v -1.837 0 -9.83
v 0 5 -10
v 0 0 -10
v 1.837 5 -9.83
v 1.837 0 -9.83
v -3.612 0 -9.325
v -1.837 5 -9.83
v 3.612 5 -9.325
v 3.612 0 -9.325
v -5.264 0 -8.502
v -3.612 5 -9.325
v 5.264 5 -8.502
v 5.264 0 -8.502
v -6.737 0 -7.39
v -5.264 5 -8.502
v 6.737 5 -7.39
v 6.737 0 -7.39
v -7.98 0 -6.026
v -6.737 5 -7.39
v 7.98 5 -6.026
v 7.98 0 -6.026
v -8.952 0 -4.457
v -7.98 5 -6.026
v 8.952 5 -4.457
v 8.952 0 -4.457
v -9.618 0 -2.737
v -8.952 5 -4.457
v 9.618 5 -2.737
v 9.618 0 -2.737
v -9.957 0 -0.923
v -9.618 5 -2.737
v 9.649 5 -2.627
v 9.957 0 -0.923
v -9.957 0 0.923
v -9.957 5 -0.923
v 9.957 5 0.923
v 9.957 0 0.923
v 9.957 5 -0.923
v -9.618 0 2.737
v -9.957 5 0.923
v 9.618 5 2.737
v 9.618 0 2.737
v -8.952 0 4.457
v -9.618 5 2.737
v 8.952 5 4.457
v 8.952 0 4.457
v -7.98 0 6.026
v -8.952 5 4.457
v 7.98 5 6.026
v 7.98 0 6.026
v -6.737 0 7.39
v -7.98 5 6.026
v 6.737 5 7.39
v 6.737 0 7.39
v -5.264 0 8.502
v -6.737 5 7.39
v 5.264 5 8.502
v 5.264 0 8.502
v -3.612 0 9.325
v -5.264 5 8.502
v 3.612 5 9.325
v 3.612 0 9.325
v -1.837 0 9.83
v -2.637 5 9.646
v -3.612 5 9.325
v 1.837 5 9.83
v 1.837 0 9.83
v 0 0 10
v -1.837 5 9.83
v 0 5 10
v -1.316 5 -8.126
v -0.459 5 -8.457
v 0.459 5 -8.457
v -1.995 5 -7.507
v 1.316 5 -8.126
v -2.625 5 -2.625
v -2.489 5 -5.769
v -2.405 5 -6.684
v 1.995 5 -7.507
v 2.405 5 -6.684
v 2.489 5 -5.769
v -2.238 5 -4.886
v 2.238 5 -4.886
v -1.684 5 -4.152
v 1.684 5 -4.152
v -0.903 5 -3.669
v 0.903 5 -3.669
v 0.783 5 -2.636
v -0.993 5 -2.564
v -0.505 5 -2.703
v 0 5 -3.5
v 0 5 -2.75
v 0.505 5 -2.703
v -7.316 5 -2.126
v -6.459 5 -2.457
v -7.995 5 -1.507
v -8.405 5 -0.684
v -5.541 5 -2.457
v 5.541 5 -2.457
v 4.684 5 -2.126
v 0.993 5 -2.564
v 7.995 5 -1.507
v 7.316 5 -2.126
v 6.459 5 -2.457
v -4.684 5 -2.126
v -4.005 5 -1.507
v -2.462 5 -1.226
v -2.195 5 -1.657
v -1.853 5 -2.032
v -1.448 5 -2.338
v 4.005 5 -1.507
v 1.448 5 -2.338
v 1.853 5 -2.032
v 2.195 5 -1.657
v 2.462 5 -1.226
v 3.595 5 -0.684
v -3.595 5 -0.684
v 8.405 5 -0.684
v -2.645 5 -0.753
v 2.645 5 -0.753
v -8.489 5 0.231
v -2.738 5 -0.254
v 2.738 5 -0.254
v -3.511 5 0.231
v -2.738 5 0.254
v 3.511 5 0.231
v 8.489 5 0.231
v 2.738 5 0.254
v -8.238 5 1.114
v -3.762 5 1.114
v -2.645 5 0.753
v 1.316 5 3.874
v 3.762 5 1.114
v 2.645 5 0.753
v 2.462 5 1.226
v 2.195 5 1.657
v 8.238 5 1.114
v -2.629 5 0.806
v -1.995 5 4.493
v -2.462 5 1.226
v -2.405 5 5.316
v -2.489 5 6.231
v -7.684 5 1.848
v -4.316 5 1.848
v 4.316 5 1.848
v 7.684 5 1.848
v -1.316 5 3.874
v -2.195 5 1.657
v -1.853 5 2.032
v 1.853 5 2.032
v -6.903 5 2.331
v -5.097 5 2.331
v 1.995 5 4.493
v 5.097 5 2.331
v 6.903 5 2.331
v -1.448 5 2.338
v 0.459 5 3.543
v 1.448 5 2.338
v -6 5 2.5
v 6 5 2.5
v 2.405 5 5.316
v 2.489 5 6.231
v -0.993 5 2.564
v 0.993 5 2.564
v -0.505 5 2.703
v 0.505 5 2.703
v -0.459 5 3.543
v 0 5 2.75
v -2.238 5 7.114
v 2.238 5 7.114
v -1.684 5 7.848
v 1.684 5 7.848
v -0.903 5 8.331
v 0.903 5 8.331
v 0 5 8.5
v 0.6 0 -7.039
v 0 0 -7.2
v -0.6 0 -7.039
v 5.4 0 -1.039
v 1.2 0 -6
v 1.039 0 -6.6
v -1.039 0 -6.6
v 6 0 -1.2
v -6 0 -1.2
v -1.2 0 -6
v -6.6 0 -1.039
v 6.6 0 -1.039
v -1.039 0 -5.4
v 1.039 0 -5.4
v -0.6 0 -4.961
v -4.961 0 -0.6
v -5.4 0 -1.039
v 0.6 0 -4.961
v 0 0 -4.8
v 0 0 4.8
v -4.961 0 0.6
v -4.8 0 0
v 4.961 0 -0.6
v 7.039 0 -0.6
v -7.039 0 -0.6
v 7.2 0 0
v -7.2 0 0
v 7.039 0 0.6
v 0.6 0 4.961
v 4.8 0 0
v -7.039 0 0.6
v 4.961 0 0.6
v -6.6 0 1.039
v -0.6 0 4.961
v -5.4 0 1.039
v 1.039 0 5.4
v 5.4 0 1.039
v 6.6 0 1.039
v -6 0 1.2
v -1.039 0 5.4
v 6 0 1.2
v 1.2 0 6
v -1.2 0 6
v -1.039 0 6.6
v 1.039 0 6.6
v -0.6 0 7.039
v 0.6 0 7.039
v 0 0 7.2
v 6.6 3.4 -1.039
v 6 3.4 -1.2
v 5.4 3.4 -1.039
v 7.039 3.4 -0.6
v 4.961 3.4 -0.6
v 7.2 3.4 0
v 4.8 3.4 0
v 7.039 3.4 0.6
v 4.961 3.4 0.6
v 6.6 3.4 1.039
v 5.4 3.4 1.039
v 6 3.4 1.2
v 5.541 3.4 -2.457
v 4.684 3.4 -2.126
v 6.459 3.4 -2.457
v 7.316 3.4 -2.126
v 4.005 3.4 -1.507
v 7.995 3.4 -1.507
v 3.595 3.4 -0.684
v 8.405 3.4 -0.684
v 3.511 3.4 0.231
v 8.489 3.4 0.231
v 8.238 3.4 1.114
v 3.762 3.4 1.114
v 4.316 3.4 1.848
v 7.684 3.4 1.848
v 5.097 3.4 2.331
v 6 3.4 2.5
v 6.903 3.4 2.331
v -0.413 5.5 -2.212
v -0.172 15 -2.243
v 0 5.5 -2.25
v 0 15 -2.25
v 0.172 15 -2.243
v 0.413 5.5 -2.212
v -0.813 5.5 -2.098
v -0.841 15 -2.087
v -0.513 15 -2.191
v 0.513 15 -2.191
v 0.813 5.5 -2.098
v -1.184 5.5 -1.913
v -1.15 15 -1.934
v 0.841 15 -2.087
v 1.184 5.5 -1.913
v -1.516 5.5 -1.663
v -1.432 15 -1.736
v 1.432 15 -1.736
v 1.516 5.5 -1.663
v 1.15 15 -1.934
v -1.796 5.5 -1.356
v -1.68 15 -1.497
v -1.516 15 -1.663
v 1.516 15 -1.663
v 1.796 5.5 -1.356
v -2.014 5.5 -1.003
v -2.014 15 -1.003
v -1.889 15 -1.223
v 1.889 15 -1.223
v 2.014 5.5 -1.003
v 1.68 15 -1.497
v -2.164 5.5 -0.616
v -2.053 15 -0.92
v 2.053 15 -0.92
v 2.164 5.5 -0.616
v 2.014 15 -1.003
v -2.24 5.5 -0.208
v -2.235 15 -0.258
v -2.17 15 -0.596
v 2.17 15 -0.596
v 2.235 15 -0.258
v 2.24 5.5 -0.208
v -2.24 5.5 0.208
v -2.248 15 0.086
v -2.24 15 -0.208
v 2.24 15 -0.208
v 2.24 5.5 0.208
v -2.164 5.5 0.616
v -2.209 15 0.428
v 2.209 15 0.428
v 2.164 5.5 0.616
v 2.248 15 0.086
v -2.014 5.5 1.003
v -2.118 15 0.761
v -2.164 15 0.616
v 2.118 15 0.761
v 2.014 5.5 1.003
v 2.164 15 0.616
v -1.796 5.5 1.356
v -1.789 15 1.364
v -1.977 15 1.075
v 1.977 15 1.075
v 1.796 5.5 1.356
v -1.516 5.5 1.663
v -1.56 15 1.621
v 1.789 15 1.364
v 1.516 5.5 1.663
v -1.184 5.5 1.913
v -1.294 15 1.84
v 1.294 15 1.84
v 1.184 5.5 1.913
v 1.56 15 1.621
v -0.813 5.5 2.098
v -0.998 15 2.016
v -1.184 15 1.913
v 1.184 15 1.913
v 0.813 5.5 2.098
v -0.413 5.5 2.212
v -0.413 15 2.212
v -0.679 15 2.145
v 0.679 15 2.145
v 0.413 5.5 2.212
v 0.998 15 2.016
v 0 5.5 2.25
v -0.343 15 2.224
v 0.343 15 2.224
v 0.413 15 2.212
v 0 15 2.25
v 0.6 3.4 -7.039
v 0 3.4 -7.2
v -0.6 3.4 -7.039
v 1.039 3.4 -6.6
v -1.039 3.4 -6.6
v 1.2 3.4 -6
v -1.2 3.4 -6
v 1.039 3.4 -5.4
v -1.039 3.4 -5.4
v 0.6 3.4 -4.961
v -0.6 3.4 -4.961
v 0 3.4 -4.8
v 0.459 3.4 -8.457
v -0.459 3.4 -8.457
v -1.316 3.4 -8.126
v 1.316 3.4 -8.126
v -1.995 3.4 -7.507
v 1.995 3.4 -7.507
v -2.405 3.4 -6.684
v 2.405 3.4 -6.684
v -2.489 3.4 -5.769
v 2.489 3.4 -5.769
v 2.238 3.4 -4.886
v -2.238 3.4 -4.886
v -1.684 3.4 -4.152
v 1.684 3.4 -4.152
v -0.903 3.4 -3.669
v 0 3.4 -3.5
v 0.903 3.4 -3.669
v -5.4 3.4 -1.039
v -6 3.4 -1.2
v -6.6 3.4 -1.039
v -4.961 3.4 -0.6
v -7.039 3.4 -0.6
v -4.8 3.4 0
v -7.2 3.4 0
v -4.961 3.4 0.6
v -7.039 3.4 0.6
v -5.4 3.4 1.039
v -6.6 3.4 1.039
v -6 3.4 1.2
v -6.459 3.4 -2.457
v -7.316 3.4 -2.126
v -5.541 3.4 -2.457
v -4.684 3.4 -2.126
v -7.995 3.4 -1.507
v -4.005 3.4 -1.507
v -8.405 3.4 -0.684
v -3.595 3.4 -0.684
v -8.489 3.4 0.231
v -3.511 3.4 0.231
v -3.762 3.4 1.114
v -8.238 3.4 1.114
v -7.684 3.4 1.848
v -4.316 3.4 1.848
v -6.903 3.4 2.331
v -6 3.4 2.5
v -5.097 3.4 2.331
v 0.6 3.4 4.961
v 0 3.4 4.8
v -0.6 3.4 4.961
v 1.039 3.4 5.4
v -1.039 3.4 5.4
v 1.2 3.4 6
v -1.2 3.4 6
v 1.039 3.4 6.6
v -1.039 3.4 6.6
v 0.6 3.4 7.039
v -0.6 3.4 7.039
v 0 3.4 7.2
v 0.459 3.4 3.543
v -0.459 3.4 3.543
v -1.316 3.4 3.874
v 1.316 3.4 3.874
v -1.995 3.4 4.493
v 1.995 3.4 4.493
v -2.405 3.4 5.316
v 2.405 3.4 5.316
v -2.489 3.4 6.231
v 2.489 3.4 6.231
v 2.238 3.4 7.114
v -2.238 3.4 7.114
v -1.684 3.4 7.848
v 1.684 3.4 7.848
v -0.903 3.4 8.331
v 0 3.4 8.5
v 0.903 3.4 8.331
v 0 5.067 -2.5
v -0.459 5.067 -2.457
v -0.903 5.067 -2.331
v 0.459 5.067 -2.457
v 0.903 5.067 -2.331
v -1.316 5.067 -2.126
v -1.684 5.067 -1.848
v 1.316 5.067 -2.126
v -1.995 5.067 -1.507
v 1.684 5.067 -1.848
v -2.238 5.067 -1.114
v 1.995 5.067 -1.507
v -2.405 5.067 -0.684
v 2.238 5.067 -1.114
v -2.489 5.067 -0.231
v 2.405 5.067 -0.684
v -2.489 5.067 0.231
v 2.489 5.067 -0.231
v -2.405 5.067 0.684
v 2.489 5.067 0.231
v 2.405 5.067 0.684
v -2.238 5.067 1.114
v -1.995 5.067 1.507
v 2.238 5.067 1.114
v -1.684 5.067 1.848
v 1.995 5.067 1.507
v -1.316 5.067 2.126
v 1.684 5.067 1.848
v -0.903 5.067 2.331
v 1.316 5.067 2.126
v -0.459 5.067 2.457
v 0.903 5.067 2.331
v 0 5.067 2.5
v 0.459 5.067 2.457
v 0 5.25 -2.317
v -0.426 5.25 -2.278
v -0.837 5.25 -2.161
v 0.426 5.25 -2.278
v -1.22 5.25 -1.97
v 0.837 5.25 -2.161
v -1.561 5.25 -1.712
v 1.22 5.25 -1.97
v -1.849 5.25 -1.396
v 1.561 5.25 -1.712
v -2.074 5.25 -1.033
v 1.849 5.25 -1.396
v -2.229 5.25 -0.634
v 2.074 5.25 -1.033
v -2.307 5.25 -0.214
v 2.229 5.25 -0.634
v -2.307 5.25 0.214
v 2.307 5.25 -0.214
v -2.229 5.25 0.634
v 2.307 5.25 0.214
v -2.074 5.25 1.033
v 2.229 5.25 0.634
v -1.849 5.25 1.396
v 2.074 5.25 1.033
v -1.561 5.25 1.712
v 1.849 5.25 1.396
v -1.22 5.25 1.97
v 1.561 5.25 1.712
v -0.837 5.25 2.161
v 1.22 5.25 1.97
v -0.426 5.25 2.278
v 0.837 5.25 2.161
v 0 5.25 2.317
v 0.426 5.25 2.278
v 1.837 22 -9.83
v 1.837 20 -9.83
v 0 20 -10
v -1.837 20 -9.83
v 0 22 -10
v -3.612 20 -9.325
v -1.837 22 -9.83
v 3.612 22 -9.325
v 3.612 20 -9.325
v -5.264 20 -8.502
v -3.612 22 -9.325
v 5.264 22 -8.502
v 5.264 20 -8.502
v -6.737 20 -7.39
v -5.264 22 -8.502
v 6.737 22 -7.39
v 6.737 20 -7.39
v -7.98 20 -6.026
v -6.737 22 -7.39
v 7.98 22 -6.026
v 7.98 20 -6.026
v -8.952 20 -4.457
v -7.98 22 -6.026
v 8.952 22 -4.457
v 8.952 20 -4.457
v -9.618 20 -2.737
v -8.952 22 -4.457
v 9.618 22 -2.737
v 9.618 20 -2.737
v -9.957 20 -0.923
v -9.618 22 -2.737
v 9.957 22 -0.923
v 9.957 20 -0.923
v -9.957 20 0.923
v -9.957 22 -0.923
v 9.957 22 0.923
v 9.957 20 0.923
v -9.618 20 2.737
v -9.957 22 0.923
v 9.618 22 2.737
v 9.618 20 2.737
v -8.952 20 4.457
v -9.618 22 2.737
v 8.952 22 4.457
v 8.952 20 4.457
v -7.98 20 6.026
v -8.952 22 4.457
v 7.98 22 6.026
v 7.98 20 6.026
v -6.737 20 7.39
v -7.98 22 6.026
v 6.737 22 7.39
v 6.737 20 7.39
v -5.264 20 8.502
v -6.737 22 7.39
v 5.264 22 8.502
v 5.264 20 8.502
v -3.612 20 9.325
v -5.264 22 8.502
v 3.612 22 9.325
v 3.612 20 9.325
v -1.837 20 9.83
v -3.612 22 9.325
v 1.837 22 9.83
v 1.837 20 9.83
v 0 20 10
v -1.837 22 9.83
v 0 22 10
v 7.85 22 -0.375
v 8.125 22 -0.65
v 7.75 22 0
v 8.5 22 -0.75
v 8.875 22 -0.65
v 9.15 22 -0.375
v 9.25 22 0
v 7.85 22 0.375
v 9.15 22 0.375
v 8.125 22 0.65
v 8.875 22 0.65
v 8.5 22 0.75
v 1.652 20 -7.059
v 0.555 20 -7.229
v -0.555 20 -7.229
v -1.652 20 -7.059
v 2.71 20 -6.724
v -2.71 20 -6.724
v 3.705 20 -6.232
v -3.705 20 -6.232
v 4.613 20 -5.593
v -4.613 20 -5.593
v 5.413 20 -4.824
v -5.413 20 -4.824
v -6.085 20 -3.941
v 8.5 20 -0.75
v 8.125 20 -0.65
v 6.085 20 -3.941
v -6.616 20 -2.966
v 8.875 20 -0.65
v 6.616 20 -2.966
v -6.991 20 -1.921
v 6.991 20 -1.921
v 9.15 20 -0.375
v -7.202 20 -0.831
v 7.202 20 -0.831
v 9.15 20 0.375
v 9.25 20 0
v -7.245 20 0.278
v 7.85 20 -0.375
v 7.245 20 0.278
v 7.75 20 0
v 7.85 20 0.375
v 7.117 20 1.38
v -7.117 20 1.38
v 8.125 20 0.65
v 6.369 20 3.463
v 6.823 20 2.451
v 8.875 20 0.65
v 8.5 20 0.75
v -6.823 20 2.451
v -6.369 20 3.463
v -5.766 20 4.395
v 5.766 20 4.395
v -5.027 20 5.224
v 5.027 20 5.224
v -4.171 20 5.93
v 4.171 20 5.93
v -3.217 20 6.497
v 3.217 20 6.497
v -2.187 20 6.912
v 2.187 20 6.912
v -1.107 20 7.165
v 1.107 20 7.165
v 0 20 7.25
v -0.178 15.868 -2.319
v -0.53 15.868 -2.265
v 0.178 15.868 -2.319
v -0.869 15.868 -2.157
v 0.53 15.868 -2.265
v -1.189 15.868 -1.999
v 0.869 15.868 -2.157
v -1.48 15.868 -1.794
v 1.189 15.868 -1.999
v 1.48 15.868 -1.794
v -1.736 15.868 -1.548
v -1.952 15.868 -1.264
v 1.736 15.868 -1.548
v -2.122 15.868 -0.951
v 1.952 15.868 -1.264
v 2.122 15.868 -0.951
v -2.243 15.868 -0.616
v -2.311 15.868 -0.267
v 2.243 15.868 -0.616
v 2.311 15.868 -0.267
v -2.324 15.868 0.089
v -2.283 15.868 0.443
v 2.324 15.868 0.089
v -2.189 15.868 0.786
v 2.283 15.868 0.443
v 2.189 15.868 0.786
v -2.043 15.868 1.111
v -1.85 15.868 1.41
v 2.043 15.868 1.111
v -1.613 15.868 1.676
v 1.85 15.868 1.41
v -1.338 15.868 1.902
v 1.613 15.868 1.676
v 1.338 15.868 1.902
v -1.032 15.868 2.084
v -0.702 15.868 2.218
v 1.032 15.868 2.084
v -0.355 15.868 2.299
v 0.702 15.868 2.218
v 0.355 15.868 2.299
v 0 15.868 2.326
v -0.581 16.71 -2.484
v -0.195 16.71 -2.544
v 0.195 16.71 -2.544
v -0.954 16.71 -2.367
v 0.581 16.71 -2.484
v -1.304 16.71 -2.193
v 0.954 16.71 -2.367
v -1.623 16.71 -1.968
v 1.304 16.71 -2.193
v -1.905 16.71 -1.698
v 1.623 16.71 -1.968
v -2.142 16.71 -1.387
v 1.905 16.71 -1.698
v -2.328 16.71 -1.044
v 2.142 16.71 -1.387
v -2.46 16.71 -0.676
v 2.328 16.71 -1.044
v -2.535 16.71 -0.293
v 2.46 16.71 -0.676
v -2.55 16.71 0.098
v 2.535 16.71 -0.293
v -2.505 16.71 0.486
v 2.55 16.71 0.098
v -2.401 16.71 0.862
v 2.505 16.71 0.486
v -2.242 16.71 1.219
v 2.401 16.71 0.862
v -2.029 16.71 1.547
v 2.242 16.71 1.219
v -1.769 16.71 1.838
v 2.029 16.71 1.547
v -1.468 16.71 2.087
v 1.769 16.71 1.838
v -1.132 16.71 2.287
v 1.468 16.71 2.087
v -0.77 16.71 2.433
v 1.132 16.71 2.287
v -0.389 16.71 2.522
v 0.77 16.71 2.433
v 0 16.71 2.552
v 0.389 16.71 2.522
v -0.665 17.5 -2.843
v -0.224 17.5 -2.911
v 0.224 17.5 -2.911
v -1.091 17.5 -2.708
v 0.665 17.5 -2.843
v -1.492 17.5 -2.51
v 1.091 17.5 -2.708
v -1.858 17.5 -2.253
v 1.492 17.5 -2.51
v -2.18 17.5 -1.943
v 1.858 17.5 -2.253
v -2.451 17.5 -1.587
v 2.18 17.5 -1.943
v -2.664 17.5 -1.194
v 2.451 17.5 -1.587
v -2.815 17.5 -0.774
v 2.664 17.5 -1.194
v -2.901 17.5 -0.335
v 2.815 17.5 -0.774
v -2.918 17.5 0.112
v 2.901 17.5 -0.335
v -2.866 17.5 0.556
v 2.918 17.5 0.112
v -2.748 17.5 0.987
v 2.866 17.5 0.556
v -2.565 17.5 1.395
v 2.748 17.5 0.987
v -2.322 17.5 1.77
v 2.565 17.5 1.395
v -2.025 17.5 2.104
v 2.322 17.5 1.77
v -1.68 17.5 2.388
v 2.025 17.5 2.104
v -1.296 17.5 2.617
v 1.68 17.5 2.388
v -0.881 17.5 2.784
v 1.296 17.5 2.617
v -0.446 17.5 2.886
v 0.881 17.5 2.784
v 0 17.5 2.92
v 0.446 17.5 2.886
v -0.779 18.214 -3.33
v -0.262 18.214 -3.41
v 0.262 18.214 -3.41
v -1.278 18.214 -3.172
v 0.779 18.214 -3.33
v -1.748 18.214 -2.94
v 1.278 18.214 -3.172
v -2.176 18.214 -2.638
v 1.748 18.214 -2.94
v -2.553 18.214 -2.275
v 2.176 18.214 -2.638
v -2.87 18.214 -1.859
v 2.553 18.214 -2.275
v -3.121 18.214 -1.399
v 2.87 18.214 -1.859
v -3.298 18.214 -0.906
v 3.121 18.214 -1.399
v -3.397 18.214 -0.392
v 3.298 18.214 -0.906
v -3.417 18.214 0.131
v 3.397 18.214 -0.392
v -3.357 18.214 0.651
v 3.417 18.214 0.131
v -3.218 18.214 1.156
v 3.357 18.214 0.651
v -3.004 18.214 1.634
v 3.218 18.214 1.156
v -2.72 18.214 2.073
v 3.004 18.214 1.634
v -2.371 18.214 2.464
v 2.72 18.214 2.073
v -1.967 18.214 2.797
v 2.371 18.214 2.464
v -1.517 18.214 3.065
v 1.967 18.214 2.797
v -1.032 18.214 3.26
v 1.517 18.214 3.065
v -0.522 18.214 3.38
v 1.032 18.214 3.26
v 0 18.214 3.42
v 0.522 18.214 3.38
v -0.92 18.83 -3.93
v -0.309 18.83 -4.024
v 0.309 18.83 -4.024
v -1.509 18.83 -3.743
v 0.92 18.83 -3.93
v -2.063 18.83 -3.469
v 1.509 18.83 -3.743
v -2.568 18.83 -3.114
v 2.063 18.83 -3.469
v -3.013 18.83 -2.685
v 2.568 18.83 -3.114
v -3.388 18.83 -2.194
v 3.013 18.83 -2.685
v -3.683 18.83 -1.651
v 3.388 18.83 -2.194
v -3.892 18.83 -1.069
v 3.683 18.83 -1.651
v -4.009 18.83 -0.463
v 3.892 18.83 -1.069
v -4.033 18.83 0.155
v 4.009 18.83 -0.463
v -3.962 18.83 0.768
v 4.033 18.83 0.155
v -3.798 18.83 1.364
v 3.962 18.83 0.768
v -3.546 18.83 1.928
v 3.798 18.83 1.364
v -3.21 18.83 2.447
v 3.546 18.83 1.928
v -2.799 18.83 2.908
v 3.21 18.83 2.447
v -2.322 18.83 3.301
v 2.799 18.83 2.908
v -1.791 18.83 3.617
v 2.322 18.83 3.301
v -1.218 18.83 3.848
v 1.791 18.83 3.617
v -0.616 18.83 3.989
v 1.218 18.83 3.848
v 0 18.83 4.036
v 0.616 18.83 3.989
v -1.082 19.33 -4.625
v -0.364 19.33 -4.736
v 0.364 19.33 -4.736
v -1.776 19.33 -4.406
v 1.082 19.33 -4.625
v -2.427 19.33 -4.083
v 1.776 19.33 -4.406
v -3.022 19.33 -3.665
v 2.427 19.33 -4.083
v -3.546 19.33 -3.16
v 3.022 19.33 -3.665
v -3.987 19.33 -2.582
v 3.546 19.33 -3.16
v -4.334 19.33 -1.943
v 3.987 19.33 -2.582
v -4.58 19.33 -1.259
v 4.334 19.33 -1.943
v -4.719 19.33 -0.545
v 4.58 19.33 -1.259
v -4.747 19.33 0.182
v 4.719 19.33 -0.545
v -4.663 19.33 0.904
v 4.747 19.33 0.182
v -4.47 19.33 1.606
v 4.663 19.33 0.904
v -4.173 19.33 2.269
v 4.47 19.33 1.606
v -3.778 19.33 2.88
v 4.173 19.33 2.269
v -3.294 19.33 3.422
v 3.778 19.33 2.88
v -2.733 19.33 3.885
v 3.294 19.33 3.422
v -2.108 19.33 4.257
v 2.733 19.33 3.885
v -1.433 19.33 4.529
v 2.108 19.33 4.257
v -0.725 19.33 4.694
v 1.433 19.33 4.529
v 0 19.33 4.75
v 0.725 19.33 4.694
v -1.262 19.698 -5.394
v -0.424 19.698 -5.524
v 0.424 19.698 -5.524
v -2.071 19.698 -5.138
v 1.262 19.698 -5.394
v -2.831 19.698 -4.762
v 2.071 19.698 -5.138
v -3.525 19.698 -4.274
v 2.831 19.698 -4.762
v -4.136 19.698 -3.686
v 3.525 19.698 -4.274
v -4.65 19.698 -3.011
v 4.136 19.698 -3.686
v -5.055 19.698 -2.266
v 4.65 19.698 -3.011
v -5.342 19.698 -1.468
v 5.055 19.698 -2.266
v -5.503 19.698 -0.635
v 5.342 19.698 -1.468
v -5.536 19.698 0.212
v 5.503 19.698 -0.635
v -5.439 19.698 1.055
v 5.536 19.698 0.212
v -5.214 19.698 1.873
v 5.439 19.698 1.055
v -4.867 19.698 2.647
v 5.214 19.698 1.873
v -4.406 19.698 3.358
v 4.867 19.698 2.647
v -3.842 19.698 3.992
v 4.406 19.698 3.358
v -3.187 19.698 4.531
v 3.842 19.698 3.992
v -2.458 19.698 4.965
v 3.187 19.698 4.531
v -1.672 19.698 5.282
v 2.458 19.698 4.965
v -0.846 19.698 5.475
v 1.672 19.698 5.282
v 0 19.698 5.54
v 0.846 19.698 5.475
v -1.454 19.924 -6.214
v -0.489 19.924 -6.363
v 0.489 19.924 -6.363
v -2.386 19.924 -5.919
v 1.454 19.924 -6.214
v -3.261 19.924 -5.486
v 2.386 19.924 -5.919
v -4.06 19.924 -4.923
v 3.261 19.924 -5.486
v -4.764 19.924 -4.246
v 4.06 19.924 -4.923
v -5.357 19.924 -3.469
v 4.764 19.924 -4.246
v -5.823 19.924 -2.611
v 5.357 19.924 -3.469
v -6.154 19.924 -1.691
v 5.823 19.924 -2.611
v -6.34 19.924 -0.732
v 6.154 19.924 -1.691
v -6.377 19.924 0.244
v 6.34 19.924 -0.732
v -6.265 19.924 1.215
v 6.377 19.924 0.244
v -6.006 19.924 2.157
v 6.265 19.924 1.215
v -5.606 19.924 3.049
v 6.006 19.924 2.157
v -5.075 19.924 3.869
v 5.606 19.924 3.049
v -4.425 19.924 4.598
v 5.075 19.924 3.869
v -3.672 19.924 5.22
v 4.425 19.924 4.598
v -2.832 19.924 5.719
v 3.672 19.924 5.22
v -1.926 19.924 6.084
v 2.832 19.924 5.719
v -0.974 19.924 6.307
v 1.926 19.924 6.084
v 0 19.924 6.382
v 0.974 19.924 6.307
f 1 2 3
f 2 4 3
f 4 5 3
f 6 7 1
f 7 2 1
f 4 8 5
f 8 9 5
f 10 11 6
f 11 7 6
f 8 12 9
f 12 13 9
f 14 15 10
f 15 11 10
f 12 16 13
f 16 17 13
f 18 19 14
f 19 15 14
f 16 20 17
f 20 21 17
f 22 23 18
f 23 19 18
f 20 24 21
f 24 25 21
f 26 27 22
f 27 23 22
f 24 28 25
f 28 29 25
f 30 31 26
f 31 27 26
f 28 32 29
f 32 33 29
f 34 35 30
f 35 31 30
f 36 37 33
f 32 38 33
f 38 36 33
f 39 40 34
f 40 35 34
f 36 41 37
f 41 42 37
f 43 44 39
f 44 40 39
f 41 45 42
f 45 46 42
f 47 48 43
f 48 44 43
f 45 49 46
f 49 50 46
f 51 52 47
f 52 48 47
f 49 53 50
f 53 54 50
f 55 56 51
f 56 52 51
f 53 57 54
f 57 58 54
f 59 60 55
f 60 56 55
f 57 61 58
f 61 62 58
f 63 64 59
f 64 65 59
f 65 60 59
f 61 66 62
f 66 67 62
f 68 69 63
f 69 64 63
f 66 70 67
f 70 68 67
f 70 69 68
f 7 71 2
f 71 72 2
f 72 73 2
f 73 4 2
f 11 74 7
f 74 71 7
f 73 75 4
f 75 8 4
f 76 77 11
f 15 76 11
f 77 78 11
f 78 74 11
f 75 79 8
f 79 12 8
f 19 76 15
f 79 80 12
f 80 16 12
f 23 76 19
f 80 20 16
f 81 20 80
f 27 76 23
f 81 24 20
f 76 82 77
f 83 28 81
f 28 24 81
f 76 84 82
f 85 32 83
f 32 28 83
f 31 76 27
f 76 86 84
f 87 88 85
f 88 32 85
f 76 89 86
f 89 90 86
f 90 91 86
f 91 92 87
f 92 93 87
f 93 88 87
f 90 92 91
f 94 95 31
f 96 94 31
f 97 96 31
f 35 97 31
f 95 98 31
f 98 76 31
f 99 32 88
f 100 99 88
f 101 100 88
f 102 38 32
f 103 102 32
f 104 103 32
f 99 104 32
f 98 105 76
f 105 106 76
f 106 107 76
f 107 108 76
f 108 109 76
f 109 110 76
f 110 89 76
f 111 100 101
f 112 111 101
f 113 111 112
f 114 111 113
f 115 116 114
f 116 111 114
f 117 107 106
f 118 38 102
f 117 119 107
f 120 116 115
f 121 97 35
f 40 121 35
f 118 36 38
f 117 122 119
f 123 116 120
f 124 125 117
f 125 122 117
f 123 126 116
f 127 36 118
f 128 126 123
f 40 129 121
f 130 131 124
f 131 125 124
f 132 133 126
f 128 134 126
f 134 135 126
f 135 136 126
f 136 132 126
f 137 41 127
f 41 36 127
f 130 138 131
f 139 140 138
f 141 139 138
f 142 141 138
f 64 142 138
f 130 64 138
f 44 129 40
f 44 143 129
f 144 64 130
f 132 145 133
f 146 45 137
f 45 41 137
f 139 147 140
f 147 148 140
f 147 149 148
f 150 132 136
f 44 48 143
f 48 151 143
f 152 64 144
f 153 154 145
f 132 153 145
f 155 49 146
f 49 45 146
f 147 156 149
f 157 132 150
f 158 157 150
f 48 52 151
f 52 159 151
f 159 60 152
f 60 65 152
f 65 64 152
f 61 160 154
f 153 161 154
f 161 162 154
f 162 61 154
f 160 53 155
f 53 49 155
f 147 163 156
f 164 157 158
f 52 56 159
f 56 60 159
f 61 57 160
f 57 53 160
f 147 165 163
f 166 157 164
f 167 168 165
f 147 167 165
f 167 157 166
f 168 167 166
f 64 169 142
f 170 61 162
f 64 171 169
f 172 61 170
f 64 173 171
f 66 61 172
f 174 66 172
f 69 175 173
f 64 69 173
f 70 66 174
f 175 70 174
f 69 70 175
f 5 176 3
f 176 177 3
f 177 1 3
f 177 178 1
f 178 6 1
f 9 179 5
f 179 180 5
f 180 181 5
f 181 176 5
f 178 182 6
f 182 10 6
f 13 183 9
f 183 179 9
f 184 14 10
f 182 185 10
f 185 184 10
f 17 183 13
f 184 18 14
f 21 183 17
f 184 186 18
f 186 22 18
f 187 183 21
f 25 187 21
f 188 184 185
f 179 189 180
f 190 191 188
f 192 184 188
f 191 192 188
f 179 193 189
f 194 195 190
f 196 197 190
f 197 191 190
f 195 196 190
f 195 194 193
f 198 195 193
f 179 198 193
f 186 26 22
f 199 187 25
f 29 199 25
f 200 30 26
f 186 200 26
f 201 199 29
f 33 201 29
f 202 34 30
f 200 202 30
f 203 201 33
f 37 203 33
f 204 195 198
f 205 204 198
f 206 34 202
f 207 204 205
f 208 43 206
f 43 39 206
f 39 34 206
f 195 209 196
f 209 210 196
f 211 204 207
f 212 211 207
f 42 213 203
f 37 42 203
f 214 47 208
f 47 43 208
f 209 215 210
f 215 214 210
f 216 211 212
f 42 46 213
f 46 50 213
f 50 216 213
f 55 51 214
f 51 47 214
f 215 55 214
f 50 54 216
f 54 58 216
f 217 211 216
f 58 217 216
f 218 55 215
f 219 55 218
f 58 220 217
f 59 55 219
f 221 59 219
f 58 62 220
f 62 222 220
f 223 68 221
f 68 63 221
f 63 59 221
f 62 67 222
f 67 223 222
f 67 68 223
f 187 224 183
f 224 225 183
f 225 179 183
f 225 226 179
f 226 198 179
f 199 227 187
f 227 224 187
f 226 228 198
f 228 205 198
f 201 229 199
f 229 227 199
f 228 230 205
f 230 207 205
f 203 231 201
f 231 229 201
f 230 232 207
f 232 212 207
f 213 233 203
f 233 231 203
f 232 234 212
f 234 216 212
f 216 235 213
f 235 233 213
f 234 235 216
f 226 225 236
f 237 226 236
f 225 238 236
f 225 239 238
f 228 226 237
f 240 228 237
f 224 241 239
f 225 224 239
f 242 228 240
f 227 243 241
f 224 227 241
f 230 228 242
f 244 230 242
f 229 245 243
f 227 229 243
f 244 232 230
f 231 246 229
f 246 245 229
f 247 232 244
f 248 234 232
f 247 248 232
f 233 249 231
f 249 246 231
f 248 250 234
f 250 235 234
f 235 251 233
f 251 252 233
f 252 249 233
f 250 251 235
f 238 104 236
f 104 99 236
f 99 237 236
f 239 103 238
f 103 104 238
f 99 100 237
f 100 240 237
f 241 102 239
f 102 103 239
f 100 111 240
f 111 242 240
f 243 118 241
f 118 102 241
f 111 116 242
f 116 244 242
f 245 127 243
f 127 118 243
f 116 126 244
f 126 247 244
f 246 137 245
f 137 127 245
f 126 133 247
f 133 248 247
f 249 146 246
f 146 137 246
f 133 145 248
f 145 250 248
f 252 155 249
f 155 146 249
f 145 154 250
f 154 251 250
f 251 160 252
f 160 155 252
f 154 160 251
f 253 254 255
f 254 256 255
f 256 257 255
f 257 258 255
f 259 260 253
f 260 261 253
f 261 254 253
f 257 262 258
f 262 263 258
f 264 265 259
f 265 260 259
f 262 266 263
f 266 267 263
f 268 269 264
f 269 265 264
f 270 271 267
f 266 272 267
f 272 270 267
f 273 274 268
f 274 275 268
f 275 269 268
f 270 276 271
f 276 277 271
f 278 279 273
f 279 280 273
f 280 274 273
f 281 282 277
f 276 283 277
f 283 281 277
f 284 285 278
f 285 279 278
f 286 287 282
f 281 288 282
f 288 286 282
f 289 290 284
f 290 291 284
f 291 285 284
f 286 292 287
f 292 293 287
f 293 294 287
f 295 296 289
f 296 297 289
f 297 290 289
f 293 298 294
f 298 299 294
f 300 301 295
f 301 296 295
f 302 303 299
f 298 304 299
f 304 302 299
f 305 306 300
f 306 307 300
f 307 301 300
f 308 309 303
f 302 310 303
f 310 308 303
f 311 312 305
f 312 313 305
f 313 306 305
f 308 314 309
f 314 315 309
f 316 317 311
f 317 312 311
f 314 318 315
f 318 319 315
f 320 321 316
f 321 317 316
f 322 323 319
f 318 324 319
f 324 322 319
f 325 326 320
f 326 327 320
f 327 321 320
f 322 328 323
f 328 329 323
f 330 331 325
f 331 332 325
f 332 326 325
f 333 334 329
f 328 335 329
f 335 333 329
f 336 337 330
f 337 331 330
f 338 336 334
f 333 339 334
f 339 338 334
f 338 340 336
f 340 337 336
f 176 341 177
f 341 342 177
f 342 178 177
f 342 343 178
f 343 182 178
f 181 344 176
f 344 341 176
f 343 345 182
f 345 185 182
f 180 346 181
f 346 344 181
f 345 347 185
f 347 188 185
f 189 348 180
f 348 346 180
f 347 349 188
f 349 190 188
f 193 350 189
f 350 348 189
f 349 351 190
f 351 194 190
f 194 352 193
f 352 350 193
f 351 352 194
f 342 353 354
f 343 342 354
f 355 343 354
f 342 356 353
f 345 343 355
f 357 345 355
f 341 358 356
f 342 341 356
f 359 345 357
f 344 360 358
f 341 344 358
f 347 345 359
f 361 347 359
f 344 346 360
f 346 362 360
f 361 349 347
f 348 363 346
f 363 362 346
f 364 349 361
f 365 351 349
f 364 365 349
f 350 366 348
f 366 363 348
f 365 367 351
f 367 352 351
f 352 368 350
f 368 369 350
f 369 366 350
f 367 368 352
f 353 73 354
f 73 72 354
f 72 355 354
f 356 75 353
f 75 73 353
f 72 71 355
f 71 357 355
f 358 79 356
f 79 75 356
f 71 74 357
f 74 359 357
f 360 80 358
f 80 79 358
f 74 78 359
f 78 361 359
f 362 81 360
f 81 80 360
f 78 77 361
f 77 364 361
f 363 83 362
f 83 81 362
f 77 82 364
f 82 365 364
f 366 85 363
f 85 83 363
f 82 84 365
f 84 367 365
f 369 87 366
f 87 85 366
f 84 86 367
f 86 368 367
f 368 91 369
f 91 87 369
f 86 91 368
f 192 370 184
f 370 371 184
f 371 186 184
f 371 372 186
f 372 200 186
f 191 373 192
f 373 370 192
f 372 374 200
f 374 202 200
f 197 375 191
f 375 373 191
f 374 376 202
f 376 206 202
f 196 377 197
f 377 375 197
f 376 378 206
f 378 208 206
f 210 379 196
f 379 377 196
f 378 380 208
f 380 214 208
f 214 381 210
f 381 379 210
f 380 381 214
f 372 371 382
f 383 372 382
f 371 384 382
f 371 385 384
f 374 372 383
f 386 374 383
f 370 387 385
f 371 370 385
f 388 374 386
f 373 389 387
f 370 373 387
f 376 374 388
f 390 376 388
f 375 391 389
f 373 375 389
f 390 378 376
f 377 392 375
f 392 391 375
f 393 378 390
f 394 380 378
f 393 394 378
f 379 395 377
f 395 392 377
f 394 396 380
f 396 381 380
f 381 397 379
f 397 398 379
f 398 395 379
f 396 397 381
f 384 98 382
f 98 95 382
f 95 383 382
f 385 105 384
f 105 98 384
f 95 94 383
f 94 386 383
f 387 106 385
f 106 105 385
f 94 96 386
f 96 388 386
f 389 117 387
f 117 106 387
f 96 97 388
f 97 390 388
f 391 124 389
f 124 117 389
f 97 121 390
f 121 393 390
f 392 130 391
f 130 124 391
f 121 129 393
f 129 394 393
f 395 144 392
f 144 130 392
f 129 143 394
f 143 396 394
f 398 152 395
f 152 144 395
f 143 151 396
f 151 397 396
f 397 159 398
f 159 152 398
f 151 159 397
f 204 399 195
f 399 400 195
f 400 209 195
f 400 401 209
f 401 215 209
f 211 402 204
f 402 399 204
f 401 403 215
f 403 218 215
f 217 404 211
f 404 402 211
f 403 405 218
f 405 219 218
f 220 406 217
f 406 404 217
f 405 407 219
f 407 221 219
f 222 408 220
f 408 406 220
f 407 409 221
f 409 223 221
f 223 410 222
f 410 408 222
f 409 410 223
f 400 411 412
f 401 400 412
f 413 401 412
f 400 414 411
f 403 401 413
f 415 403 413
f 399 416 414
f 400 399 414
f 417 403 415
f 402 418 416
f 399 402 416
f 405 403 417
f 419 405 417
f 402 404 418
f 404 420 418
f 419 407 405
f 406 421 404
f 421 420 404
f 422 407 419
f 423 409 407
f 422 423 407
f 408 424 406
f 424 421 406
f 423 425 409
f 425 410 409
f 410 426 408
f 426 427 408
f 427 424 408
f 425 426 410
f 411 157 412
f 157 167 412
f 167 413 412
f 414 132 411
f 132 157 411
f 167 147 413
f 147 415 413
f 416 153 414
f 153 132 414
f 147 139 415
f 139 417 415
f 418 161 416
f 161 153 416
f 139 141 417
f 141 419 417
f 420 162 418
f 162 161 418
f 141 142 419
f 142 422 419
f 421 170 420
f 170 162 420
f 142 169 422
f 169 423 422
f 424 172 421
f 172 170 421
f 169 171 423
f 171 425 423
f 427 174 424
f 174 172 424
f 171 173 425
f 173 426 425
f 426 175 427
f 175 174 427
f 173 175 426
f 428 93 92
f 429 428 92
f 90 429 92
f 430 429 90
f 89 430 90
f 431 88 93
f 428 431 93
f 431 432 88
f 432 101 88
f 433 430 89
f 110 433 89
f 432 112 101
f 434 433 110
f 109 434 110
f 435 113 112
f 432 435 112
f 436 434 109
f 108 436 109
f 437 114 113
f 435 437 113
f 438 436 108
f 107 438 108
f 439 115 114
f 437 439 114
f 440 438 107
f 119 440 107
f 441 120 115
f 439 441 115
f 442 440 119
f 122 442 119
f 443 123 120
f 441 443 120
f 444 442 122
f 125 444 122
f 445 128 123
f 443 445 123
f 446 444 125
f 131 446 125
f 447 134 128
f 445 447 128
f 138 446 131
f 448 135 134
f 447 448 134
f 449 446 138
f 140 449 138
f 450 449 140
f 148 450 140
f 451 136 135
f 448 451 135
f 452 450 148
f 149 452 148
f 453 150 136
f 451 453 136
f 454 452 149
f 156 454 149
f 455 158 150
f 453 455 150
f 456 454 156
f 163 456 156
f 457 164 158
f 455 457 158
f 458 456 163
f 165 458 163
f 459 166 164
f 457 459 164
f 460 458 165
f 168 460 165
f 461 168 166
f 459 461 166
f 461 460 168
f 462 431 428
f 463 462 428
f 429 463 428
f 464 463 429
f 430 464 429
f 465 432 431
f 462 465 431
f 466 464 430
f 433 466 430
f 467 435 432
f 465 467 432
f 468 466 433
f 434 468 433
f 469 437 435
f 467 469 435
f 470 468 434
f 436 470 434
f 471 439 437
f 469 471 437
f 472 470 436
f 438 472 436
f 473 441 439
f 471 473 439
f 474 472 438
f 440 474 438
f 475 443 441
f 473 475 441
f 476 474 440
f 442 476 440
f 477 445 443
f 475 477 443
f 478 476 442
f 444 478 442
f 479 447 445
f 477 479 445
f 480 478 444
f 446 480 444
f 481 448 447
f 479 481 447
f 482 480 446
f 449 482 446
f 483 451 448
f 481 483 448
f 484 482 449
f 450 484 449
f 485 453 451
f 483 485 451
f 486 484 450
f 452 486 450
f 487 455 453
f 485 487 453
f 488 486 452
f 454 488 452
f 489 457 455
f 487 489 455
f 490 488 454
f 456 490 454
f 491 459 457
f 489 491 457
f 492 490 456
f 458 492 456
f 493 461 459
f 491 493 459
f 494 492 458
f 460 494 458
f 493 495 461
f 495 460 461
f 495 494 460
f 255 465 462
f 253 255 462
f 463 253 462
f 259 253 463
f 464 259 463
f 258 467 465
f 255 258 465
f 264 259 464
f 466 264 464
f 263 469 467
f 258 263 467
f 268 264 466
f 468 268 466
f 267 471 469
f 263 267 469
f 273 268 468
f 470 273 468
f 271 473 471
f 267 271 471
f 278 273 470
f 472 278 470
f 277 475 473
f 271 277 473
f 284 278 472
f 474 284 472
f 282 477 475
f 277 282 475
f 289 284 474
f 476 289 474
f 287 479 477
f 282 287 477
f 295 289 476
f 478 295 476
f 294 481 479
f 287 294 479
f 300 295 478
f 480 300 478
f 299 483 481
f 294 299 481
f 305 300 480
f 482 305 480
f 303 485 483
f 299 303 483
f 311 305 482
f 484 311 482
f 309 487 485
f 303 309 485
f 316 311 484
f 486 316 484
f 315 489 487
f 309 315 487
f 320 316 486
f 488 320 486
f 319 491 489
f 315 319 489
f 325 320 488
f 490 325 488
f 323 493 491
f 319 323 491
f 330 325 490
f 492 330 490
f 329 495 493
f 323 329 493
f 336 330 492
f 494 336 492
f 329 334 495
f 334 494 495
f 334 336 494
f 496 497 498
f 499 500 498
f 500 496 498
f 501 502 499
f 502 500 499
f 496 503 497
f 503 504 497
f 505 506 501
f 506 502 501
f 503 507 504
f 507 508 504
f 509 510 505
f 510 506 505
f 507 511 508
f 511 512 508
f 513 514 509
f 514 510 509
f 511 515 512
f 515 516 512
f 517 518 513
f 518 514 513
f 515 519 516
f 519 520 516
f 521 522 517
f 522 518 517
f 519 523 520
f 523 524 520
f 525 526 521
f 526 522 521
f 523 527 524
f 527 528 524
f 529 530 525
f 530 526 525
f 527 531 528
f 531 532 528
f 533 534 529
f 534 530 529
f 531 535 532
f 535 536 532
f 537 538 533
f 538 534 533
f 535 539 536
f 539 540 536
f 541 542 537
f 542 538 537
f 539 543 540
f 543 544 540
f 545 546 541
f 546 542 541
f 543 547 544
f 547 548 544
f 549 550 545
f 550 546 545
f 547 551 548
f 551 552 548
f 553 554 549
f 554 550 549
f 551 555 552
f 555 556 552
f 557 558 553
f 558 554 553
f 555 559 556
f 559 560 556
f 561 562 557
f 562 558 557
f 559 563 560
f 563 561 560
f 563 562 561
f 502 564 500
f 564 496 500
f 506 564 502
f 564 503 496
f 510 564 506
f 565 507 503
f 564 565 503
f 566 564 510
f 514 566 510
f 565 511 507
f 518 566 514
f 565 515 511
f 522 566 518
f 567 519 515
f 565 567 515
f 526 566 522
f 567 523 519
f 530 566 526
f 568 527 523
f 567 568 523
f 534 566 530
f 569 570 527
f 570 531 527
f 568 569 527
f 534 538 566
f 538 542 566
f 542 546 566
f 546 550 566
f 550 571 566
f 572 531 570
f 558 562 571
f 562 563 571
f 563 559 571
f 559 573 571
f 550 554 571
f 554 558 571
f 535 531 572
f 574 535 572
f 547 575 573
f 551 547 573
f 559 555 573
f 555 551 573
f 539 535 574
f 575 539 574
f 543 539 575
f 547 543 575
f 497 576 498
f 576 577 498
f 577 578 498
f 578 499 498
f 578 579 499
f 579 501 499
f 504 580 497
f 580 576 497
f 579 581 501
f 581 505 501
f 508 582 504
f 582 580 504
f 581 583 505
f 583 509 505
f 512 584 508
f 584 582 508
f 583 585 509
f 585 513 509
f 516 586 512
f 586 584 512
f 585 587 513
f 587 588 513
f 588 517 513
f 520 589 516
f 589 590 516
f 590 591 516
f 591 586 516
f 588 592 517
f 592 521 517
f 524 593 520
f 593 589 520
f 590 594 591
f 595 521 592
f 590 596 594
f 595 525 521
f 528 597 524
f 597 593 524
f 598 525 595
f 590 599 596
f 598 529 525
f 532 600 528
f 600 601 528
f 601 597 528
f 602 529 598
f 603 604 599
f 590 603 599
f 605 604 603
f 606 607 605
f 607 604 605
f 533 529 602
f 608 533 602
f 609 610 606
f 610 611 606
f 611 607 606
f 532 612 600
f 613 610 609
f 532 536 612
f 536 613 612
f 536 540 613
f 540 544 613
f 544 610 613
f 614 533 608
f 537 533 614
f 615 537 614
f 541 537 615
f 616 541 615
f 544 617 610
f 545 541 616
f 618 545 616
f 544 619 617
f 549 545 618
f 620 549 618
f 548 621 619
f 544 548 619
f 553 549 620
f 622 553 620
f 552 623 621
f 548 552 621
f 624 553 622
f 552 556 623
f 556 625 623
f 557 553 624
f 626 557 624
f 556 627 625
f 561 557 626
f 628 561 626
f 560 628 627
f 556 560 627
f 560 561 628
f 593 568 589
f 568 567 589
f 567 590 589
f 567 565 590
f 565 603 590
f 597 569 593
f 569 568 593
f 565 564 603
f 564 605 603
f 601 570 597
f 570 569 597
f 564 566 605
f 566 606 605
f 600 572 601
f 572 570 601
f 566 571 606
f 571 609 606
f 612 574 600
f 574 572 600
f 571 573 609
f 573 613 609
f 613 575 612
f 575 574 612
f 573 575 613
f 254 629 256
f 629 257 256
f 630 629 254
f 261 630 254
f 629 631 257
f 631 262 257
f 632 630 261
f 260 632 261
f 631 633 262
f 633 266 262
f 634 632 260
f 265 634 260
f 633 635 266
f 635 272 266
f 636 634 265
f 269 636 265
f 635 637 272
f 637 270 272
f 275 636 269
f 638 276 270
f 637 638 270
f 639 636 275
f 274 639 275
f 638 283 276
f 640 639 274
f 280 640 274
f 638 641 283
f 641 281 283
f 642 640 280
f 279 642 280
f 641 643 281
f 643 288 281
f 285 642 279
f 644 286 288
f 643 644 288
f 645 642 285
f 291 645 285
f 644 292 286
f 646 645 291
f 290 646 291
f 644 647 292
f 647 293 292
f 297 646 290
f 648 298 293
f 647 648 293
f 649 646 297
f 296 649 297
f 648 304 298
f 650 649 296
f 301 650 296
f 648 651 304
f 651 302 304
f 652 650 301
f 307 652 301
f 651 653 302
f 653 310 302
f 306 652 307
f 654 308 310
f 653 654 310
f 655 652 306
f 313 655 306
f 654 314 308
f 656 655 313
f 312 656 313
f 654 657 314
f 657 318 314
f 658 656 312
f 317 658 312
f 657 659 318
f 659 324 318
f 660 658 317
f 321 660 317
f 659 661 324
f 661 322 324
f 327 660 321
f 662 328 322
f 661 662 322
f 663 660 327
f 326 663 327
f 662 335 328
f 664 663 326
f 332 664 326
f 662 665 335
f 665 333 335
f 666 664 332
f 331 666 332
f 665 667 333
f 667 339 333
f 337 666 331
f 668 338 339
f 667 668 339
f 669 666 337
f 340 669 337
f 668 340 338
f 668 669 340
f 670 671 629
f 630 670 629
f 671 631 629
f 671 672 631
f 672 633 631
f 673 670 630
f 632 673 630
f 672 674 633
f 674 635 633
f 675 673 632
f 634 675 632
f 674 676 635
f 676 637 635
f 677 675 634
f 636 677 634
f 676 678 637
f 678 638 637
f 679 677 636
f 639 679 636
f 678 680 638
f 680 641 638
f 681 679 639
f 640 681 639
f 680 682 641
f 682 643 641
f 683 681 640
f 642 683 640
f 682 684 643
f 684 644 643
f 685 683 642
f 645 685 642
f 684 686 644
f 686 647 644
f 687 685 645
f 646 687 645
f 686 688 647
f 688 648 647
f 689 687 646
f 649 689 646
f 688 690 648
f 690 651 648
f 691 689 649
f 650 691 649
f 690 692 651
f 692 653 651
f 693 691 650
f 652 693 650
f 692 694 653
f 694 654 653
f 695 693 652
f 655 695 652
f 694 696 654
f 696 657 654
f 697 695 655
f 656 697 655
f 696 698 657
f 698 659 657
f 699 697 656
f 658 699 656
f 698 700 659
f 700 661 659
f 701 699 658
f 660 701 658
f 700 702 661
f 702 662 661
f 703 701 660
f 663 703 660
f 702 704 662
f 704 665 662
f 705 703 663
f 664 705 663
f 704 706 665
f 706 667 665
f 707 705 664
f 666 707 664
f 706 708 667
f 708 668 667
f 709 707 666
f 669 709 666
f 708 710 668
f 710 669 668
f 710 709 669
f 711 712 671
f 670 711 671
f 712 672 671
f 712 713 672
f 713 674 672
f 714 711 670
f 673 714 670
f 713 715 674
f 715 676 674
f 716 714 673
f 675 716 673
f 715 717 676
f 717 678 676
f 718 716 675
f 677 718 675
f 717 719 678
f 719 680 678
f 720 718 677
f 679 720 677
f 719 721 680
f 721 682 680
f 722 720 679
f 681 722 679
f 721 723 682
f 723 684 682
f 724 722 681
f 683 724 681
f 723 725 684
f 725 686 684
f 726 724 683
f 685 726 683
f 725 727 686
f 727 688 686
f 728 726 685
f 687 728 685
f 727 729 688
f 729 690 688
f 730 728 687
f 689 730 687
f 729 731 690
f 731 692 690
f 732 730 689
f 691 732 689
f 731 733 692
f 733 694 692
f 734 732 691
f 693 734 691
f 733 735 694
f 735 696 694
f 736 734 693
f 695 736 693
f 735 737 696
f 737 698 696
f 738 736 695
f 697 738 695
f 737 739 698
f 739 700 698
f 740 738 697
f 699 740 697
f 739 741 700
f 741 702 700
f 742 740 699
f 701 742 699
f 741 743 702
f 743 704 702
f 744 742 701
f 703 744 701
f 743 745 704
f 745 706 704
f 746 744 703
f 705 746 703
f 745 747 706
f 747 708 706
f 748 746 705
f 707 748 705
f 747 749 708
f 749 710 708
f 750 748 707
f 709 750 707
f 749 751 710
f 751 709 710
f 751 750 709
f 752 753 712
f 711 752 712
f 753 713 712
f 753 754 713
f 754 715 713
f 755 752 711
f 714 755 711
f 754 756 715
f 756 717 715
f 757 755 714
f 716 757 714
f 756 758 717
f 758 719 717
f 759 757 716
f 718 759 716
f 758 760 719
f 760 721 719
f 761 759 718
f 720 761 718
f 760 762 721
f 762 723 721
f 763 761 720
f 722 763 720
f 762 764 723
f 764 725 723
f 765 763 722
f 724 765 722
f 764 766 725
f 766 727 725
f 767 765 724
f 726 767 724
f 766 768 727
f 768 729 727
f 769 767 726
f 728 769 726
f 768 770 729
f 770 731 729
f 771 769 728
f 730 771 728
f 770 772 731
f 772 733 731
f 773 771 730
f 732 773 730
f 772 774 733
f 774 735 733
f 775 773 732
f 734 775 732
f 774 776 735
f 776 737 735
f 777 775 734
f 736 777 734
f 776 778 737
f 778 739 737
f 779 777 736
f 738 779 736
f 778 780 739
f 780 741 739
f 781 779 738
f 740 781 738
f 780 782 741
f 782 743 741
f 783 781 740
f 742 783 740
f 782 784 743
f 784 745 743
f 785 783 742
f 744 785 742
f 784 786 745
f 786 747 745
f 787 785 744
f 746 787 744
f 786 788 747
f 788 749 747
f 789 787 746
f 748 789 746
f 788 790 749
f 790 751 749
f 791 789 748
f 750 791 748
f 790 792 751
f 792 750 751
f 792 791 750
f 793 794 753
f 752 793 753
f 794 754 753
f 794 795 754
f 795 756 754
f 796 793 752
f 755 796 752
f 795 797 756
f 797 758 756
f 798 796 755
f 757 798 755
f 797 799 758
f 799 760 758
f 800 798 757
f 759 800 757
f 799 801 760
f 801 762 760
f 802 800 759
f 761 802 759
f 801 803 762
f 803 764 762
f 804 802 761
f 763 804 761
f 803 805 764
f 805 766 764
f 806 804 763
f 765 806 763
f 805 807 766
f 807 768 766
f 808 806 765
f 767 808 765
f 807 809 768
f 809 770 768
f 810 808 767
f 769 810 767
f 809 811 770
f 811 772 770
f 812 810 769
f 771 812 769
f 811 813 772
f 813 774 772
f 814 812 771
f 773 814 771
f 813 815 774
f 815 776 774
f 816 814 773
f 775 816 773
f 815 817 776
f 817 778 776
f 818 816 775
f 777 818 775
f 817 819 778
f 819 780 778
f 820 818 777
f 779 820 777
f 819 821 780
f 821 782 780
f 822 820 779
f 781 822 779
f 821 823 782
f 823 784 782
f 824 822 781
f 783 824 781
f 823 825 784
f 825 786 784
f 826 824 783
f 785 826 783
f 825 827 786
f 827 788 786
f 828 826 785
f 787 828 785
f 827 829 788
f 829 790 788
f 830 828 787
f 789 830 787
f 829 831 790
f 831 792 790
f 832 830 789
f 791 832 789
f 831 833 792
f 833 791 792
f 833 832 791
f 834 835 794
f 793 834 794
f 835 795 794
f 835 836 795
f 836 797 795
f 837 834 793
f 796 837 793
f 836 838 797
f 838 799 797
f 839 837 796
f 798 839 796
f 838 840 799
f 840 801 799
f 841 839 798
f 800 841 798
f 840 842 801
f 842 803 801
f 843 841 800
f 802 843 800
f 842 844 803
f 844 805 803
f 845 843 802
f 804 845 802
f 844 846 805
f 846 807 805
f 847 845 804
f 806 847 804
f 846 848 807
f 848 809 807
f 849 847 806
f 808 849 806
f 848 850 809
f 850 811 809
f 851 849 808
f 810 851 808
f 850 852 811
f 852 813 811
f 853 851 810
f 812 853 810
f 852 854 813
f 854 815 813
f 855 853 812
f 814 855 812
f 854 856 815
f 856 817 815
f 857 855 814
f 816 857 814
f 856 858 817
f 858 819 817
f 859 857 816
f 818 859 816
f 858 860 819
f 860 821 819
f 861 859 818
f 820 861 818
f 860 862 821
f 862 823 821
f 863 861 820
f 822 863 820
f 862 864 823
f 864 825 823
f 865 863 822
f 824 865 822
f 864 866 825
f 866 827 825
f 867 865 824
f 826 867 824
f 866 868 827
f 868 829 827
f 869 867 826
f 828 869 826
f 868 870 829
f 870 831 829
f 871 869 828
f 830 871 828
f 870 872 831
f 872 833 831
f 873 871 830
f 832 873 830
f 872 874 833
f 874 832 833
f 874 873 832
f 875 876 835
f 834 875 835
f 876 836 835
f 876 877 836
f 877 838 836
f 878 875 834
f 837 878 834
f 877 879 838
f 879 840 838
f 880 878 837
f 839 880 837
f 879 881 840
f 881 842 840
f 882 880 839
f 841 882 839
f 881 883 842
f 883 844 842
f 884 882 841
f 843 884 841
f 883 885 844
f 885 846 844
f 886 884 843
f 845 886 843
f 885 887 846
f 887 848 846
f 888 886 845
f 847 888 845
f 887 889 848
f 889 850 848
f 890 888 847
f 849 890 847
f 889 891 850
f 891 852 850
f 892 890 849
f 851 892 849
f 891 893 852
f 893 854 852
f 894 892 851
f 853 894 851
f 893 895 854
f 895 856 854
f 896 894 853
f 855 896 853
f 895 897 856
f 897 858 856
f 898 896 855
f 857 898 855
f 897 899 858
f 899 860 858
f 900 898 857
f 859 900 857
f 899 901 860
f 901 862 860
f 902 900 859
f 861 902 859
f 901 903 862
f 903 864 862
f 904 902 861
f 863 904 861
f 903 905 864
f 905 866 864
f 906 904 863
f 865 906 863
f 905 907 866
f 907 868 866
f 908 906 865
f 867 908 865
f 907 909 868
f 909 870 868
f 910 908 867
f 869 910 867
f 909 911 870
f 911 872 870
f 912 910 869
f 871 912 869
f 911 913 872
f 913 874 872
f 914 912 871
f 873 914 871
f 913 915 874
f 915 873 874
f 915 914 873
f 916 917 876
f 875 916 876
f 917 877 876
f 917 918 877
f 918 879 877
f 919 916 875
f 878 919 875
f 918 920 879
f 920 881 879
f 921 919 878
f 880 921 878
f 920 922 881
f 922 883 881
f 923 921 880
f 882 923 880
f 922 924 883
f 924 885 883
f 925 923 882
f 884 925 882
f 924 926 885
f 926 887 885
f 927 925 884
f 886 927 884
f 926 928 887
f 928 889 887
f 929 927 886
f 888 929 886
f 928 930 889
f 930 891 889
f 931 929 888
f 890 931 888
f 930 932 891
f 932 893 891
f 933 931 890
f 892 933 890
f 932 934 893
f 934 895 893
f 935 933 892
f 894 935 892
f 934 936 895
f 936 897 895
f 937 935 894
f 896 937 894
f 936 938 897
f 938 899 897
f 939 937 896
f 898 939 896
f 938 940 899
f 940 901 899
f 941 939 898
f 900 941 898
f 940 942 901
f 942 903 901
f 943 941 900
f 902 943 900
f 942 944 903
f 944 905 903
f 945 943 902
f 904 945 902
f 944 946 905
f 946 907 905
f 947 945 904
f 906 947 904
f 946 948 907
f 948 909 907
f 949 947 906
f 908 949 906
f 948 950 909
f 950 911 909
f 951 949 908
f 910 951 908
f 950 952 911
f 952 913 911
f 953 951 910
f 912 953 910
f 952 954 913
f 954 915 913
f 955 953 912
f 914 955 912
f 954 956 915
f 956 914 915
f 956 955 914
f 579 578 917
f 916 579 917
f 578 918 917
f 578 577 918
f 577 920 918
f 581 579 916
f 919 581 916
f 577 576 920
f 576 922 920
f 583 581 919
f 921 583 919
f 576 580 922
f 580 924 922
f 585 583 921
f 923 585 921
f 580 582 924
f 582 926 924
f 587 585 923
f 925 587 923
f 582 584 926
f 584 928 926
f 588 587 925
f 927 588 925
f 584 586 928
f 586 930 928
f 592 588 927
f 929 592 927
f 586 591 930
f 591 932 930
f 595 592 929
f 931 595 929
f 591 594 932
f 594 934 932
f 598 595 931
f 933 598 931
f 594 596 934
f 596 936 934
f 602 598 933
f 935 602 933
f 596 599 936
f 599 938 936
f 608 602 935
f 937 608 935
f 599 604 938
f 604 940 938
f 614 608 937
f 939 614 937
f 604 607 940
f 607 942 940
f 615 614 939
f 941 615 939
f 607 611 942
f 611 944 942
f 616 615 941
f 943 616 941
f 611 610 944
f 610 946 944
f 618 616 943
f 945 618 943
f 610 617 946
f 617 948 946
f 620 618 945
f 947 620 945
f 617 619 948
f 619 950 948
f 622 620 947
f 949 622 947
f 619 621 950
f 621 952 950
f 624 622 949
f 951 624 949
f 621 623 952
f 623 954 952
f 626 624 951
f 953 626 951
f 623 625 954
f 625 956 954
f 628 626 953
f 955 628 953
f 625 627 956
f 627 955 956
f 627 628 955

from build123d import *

# Parameters (mm, degrees)
SKETCH1_R                                = 10
BOTTOM_DEPTH                             = 5
CBORE_FOR_M2_PAN_HEAD_SCREW1_D           = 2.4
CBORE_FOR_M2_PAN_HEAD_SCREW1_CBORE_D     = 5
CBORE_FOR_M2_PAN_HEAD_SCREW1_CBORE_DEPTH = 1.6
SKETCH4_R                                = 2.25
GROOVE_DEPTH                             = 15
CIRPATTERN1_COUNT                        = 4
FILLET1_R                                = 0.5
SKETCH7_R                                = 10
TOP_DEPTH                                = 2
SKETCH8_R                                = 0.75
THREAD_TERMINAL_DEPTH                    = 2
FILLET2_R                                = 5


with BuildPart() as part:
    # Sketch1 → bottom (new body)
    with BuildSketch(Plane(origin=(0, 0, 0), x_dir=(1, 0, 0), z_dir=(0, 1, 0))):
        with Locations(Location((0, 0, 0), (0, 0, 270))):
            Circle(SKETCH1_R)
    extrude(amount=BOTTOM_DEPTH)

    # CBORE for M2 Pan Head Screw1 (through all)
    with Locations(Plane(origin=(0, 5, 0), x_dir=(1, 0, 0), z_dir=(0, 1, 0))):
        with Locations((6, 0)):
            cbore_for_m2_pan_head_screw1 = CounterBoreHole(CBORE_FOR_M2_PAN_HEAD_SCREW1_D / 2, CBORE_FOR_M2_PAN_HEAD_SCREW1_CBORE_D / 2, CBORE_FOR_M2_PAN_HEAD_SCREW1_CBORE_DEPTH)

    # Sketch4 → groove (add)
    with BuildSketch(Plane(origin=(0, 5, 0), x_dir=(1, 0, 0), z_dir=(0, 1, 0))):
        with Locations(Location((0, 0, 0), (0, 0, 270))):
            Circle(SKETCH4_R)
    extrude(amount=GROOVE_DEPTH)

    # CirPattern1: CBORE for M2 Pan Head Screw1 ×4 about axis
    cirpattern1_axis = Axis((0, 0, 0), (0, 1, 0))
    for i in range(1, CIRPATTERN1_COUNT):
        add(cbore_for_m2_pan_head_screw1.rotate(cirpattern1_axis, i * 360 / CIRPATTERN1_COUNT), mode=Mode.SUBTRACT)

    # Fillet1
    fillet1_edges = [part.edges().sort_by_distance(p)[0] for p in [
        (0, 5, -2.25),
    ]]
    fillet(fillet1_edges, radius=FILLET1_R)

    # Sketch7 → top (add)
    with BuildSketch(Plane(origin=(0, 20, 0), x_dir=(1, 0, 0), z_dir=(0, 1, 0))):
        with Locations(Location((0, 0, 0), (0, 0, 270))):
            Circle(SKETCH7_R)
    extrude(amount=TOP_DEPTH)

    # Sketch8 → thread_terminal (cut)
    with BuildSketch(Plane(origin=(0, 22, 0), x_dir=(1, 0, 0), z_dir=(0, 1, 0))):
        with Locations(Location((8.5, 0, 0), (0, 0, 270))):
            Circle(SKETCH8_R)
    extrude(amount=-THREAD_TERMINAL_DEPTH, mode=Mode.SUBTRACT)

    # Fillet2
    fillet2_edges = [part.edges().sort_by_distance(p)[0] for p in [
        (0, 20, -2.25),
    ]]
    fillet(fillet2_edges, radius=FILLET2_R)


solid = part.part
